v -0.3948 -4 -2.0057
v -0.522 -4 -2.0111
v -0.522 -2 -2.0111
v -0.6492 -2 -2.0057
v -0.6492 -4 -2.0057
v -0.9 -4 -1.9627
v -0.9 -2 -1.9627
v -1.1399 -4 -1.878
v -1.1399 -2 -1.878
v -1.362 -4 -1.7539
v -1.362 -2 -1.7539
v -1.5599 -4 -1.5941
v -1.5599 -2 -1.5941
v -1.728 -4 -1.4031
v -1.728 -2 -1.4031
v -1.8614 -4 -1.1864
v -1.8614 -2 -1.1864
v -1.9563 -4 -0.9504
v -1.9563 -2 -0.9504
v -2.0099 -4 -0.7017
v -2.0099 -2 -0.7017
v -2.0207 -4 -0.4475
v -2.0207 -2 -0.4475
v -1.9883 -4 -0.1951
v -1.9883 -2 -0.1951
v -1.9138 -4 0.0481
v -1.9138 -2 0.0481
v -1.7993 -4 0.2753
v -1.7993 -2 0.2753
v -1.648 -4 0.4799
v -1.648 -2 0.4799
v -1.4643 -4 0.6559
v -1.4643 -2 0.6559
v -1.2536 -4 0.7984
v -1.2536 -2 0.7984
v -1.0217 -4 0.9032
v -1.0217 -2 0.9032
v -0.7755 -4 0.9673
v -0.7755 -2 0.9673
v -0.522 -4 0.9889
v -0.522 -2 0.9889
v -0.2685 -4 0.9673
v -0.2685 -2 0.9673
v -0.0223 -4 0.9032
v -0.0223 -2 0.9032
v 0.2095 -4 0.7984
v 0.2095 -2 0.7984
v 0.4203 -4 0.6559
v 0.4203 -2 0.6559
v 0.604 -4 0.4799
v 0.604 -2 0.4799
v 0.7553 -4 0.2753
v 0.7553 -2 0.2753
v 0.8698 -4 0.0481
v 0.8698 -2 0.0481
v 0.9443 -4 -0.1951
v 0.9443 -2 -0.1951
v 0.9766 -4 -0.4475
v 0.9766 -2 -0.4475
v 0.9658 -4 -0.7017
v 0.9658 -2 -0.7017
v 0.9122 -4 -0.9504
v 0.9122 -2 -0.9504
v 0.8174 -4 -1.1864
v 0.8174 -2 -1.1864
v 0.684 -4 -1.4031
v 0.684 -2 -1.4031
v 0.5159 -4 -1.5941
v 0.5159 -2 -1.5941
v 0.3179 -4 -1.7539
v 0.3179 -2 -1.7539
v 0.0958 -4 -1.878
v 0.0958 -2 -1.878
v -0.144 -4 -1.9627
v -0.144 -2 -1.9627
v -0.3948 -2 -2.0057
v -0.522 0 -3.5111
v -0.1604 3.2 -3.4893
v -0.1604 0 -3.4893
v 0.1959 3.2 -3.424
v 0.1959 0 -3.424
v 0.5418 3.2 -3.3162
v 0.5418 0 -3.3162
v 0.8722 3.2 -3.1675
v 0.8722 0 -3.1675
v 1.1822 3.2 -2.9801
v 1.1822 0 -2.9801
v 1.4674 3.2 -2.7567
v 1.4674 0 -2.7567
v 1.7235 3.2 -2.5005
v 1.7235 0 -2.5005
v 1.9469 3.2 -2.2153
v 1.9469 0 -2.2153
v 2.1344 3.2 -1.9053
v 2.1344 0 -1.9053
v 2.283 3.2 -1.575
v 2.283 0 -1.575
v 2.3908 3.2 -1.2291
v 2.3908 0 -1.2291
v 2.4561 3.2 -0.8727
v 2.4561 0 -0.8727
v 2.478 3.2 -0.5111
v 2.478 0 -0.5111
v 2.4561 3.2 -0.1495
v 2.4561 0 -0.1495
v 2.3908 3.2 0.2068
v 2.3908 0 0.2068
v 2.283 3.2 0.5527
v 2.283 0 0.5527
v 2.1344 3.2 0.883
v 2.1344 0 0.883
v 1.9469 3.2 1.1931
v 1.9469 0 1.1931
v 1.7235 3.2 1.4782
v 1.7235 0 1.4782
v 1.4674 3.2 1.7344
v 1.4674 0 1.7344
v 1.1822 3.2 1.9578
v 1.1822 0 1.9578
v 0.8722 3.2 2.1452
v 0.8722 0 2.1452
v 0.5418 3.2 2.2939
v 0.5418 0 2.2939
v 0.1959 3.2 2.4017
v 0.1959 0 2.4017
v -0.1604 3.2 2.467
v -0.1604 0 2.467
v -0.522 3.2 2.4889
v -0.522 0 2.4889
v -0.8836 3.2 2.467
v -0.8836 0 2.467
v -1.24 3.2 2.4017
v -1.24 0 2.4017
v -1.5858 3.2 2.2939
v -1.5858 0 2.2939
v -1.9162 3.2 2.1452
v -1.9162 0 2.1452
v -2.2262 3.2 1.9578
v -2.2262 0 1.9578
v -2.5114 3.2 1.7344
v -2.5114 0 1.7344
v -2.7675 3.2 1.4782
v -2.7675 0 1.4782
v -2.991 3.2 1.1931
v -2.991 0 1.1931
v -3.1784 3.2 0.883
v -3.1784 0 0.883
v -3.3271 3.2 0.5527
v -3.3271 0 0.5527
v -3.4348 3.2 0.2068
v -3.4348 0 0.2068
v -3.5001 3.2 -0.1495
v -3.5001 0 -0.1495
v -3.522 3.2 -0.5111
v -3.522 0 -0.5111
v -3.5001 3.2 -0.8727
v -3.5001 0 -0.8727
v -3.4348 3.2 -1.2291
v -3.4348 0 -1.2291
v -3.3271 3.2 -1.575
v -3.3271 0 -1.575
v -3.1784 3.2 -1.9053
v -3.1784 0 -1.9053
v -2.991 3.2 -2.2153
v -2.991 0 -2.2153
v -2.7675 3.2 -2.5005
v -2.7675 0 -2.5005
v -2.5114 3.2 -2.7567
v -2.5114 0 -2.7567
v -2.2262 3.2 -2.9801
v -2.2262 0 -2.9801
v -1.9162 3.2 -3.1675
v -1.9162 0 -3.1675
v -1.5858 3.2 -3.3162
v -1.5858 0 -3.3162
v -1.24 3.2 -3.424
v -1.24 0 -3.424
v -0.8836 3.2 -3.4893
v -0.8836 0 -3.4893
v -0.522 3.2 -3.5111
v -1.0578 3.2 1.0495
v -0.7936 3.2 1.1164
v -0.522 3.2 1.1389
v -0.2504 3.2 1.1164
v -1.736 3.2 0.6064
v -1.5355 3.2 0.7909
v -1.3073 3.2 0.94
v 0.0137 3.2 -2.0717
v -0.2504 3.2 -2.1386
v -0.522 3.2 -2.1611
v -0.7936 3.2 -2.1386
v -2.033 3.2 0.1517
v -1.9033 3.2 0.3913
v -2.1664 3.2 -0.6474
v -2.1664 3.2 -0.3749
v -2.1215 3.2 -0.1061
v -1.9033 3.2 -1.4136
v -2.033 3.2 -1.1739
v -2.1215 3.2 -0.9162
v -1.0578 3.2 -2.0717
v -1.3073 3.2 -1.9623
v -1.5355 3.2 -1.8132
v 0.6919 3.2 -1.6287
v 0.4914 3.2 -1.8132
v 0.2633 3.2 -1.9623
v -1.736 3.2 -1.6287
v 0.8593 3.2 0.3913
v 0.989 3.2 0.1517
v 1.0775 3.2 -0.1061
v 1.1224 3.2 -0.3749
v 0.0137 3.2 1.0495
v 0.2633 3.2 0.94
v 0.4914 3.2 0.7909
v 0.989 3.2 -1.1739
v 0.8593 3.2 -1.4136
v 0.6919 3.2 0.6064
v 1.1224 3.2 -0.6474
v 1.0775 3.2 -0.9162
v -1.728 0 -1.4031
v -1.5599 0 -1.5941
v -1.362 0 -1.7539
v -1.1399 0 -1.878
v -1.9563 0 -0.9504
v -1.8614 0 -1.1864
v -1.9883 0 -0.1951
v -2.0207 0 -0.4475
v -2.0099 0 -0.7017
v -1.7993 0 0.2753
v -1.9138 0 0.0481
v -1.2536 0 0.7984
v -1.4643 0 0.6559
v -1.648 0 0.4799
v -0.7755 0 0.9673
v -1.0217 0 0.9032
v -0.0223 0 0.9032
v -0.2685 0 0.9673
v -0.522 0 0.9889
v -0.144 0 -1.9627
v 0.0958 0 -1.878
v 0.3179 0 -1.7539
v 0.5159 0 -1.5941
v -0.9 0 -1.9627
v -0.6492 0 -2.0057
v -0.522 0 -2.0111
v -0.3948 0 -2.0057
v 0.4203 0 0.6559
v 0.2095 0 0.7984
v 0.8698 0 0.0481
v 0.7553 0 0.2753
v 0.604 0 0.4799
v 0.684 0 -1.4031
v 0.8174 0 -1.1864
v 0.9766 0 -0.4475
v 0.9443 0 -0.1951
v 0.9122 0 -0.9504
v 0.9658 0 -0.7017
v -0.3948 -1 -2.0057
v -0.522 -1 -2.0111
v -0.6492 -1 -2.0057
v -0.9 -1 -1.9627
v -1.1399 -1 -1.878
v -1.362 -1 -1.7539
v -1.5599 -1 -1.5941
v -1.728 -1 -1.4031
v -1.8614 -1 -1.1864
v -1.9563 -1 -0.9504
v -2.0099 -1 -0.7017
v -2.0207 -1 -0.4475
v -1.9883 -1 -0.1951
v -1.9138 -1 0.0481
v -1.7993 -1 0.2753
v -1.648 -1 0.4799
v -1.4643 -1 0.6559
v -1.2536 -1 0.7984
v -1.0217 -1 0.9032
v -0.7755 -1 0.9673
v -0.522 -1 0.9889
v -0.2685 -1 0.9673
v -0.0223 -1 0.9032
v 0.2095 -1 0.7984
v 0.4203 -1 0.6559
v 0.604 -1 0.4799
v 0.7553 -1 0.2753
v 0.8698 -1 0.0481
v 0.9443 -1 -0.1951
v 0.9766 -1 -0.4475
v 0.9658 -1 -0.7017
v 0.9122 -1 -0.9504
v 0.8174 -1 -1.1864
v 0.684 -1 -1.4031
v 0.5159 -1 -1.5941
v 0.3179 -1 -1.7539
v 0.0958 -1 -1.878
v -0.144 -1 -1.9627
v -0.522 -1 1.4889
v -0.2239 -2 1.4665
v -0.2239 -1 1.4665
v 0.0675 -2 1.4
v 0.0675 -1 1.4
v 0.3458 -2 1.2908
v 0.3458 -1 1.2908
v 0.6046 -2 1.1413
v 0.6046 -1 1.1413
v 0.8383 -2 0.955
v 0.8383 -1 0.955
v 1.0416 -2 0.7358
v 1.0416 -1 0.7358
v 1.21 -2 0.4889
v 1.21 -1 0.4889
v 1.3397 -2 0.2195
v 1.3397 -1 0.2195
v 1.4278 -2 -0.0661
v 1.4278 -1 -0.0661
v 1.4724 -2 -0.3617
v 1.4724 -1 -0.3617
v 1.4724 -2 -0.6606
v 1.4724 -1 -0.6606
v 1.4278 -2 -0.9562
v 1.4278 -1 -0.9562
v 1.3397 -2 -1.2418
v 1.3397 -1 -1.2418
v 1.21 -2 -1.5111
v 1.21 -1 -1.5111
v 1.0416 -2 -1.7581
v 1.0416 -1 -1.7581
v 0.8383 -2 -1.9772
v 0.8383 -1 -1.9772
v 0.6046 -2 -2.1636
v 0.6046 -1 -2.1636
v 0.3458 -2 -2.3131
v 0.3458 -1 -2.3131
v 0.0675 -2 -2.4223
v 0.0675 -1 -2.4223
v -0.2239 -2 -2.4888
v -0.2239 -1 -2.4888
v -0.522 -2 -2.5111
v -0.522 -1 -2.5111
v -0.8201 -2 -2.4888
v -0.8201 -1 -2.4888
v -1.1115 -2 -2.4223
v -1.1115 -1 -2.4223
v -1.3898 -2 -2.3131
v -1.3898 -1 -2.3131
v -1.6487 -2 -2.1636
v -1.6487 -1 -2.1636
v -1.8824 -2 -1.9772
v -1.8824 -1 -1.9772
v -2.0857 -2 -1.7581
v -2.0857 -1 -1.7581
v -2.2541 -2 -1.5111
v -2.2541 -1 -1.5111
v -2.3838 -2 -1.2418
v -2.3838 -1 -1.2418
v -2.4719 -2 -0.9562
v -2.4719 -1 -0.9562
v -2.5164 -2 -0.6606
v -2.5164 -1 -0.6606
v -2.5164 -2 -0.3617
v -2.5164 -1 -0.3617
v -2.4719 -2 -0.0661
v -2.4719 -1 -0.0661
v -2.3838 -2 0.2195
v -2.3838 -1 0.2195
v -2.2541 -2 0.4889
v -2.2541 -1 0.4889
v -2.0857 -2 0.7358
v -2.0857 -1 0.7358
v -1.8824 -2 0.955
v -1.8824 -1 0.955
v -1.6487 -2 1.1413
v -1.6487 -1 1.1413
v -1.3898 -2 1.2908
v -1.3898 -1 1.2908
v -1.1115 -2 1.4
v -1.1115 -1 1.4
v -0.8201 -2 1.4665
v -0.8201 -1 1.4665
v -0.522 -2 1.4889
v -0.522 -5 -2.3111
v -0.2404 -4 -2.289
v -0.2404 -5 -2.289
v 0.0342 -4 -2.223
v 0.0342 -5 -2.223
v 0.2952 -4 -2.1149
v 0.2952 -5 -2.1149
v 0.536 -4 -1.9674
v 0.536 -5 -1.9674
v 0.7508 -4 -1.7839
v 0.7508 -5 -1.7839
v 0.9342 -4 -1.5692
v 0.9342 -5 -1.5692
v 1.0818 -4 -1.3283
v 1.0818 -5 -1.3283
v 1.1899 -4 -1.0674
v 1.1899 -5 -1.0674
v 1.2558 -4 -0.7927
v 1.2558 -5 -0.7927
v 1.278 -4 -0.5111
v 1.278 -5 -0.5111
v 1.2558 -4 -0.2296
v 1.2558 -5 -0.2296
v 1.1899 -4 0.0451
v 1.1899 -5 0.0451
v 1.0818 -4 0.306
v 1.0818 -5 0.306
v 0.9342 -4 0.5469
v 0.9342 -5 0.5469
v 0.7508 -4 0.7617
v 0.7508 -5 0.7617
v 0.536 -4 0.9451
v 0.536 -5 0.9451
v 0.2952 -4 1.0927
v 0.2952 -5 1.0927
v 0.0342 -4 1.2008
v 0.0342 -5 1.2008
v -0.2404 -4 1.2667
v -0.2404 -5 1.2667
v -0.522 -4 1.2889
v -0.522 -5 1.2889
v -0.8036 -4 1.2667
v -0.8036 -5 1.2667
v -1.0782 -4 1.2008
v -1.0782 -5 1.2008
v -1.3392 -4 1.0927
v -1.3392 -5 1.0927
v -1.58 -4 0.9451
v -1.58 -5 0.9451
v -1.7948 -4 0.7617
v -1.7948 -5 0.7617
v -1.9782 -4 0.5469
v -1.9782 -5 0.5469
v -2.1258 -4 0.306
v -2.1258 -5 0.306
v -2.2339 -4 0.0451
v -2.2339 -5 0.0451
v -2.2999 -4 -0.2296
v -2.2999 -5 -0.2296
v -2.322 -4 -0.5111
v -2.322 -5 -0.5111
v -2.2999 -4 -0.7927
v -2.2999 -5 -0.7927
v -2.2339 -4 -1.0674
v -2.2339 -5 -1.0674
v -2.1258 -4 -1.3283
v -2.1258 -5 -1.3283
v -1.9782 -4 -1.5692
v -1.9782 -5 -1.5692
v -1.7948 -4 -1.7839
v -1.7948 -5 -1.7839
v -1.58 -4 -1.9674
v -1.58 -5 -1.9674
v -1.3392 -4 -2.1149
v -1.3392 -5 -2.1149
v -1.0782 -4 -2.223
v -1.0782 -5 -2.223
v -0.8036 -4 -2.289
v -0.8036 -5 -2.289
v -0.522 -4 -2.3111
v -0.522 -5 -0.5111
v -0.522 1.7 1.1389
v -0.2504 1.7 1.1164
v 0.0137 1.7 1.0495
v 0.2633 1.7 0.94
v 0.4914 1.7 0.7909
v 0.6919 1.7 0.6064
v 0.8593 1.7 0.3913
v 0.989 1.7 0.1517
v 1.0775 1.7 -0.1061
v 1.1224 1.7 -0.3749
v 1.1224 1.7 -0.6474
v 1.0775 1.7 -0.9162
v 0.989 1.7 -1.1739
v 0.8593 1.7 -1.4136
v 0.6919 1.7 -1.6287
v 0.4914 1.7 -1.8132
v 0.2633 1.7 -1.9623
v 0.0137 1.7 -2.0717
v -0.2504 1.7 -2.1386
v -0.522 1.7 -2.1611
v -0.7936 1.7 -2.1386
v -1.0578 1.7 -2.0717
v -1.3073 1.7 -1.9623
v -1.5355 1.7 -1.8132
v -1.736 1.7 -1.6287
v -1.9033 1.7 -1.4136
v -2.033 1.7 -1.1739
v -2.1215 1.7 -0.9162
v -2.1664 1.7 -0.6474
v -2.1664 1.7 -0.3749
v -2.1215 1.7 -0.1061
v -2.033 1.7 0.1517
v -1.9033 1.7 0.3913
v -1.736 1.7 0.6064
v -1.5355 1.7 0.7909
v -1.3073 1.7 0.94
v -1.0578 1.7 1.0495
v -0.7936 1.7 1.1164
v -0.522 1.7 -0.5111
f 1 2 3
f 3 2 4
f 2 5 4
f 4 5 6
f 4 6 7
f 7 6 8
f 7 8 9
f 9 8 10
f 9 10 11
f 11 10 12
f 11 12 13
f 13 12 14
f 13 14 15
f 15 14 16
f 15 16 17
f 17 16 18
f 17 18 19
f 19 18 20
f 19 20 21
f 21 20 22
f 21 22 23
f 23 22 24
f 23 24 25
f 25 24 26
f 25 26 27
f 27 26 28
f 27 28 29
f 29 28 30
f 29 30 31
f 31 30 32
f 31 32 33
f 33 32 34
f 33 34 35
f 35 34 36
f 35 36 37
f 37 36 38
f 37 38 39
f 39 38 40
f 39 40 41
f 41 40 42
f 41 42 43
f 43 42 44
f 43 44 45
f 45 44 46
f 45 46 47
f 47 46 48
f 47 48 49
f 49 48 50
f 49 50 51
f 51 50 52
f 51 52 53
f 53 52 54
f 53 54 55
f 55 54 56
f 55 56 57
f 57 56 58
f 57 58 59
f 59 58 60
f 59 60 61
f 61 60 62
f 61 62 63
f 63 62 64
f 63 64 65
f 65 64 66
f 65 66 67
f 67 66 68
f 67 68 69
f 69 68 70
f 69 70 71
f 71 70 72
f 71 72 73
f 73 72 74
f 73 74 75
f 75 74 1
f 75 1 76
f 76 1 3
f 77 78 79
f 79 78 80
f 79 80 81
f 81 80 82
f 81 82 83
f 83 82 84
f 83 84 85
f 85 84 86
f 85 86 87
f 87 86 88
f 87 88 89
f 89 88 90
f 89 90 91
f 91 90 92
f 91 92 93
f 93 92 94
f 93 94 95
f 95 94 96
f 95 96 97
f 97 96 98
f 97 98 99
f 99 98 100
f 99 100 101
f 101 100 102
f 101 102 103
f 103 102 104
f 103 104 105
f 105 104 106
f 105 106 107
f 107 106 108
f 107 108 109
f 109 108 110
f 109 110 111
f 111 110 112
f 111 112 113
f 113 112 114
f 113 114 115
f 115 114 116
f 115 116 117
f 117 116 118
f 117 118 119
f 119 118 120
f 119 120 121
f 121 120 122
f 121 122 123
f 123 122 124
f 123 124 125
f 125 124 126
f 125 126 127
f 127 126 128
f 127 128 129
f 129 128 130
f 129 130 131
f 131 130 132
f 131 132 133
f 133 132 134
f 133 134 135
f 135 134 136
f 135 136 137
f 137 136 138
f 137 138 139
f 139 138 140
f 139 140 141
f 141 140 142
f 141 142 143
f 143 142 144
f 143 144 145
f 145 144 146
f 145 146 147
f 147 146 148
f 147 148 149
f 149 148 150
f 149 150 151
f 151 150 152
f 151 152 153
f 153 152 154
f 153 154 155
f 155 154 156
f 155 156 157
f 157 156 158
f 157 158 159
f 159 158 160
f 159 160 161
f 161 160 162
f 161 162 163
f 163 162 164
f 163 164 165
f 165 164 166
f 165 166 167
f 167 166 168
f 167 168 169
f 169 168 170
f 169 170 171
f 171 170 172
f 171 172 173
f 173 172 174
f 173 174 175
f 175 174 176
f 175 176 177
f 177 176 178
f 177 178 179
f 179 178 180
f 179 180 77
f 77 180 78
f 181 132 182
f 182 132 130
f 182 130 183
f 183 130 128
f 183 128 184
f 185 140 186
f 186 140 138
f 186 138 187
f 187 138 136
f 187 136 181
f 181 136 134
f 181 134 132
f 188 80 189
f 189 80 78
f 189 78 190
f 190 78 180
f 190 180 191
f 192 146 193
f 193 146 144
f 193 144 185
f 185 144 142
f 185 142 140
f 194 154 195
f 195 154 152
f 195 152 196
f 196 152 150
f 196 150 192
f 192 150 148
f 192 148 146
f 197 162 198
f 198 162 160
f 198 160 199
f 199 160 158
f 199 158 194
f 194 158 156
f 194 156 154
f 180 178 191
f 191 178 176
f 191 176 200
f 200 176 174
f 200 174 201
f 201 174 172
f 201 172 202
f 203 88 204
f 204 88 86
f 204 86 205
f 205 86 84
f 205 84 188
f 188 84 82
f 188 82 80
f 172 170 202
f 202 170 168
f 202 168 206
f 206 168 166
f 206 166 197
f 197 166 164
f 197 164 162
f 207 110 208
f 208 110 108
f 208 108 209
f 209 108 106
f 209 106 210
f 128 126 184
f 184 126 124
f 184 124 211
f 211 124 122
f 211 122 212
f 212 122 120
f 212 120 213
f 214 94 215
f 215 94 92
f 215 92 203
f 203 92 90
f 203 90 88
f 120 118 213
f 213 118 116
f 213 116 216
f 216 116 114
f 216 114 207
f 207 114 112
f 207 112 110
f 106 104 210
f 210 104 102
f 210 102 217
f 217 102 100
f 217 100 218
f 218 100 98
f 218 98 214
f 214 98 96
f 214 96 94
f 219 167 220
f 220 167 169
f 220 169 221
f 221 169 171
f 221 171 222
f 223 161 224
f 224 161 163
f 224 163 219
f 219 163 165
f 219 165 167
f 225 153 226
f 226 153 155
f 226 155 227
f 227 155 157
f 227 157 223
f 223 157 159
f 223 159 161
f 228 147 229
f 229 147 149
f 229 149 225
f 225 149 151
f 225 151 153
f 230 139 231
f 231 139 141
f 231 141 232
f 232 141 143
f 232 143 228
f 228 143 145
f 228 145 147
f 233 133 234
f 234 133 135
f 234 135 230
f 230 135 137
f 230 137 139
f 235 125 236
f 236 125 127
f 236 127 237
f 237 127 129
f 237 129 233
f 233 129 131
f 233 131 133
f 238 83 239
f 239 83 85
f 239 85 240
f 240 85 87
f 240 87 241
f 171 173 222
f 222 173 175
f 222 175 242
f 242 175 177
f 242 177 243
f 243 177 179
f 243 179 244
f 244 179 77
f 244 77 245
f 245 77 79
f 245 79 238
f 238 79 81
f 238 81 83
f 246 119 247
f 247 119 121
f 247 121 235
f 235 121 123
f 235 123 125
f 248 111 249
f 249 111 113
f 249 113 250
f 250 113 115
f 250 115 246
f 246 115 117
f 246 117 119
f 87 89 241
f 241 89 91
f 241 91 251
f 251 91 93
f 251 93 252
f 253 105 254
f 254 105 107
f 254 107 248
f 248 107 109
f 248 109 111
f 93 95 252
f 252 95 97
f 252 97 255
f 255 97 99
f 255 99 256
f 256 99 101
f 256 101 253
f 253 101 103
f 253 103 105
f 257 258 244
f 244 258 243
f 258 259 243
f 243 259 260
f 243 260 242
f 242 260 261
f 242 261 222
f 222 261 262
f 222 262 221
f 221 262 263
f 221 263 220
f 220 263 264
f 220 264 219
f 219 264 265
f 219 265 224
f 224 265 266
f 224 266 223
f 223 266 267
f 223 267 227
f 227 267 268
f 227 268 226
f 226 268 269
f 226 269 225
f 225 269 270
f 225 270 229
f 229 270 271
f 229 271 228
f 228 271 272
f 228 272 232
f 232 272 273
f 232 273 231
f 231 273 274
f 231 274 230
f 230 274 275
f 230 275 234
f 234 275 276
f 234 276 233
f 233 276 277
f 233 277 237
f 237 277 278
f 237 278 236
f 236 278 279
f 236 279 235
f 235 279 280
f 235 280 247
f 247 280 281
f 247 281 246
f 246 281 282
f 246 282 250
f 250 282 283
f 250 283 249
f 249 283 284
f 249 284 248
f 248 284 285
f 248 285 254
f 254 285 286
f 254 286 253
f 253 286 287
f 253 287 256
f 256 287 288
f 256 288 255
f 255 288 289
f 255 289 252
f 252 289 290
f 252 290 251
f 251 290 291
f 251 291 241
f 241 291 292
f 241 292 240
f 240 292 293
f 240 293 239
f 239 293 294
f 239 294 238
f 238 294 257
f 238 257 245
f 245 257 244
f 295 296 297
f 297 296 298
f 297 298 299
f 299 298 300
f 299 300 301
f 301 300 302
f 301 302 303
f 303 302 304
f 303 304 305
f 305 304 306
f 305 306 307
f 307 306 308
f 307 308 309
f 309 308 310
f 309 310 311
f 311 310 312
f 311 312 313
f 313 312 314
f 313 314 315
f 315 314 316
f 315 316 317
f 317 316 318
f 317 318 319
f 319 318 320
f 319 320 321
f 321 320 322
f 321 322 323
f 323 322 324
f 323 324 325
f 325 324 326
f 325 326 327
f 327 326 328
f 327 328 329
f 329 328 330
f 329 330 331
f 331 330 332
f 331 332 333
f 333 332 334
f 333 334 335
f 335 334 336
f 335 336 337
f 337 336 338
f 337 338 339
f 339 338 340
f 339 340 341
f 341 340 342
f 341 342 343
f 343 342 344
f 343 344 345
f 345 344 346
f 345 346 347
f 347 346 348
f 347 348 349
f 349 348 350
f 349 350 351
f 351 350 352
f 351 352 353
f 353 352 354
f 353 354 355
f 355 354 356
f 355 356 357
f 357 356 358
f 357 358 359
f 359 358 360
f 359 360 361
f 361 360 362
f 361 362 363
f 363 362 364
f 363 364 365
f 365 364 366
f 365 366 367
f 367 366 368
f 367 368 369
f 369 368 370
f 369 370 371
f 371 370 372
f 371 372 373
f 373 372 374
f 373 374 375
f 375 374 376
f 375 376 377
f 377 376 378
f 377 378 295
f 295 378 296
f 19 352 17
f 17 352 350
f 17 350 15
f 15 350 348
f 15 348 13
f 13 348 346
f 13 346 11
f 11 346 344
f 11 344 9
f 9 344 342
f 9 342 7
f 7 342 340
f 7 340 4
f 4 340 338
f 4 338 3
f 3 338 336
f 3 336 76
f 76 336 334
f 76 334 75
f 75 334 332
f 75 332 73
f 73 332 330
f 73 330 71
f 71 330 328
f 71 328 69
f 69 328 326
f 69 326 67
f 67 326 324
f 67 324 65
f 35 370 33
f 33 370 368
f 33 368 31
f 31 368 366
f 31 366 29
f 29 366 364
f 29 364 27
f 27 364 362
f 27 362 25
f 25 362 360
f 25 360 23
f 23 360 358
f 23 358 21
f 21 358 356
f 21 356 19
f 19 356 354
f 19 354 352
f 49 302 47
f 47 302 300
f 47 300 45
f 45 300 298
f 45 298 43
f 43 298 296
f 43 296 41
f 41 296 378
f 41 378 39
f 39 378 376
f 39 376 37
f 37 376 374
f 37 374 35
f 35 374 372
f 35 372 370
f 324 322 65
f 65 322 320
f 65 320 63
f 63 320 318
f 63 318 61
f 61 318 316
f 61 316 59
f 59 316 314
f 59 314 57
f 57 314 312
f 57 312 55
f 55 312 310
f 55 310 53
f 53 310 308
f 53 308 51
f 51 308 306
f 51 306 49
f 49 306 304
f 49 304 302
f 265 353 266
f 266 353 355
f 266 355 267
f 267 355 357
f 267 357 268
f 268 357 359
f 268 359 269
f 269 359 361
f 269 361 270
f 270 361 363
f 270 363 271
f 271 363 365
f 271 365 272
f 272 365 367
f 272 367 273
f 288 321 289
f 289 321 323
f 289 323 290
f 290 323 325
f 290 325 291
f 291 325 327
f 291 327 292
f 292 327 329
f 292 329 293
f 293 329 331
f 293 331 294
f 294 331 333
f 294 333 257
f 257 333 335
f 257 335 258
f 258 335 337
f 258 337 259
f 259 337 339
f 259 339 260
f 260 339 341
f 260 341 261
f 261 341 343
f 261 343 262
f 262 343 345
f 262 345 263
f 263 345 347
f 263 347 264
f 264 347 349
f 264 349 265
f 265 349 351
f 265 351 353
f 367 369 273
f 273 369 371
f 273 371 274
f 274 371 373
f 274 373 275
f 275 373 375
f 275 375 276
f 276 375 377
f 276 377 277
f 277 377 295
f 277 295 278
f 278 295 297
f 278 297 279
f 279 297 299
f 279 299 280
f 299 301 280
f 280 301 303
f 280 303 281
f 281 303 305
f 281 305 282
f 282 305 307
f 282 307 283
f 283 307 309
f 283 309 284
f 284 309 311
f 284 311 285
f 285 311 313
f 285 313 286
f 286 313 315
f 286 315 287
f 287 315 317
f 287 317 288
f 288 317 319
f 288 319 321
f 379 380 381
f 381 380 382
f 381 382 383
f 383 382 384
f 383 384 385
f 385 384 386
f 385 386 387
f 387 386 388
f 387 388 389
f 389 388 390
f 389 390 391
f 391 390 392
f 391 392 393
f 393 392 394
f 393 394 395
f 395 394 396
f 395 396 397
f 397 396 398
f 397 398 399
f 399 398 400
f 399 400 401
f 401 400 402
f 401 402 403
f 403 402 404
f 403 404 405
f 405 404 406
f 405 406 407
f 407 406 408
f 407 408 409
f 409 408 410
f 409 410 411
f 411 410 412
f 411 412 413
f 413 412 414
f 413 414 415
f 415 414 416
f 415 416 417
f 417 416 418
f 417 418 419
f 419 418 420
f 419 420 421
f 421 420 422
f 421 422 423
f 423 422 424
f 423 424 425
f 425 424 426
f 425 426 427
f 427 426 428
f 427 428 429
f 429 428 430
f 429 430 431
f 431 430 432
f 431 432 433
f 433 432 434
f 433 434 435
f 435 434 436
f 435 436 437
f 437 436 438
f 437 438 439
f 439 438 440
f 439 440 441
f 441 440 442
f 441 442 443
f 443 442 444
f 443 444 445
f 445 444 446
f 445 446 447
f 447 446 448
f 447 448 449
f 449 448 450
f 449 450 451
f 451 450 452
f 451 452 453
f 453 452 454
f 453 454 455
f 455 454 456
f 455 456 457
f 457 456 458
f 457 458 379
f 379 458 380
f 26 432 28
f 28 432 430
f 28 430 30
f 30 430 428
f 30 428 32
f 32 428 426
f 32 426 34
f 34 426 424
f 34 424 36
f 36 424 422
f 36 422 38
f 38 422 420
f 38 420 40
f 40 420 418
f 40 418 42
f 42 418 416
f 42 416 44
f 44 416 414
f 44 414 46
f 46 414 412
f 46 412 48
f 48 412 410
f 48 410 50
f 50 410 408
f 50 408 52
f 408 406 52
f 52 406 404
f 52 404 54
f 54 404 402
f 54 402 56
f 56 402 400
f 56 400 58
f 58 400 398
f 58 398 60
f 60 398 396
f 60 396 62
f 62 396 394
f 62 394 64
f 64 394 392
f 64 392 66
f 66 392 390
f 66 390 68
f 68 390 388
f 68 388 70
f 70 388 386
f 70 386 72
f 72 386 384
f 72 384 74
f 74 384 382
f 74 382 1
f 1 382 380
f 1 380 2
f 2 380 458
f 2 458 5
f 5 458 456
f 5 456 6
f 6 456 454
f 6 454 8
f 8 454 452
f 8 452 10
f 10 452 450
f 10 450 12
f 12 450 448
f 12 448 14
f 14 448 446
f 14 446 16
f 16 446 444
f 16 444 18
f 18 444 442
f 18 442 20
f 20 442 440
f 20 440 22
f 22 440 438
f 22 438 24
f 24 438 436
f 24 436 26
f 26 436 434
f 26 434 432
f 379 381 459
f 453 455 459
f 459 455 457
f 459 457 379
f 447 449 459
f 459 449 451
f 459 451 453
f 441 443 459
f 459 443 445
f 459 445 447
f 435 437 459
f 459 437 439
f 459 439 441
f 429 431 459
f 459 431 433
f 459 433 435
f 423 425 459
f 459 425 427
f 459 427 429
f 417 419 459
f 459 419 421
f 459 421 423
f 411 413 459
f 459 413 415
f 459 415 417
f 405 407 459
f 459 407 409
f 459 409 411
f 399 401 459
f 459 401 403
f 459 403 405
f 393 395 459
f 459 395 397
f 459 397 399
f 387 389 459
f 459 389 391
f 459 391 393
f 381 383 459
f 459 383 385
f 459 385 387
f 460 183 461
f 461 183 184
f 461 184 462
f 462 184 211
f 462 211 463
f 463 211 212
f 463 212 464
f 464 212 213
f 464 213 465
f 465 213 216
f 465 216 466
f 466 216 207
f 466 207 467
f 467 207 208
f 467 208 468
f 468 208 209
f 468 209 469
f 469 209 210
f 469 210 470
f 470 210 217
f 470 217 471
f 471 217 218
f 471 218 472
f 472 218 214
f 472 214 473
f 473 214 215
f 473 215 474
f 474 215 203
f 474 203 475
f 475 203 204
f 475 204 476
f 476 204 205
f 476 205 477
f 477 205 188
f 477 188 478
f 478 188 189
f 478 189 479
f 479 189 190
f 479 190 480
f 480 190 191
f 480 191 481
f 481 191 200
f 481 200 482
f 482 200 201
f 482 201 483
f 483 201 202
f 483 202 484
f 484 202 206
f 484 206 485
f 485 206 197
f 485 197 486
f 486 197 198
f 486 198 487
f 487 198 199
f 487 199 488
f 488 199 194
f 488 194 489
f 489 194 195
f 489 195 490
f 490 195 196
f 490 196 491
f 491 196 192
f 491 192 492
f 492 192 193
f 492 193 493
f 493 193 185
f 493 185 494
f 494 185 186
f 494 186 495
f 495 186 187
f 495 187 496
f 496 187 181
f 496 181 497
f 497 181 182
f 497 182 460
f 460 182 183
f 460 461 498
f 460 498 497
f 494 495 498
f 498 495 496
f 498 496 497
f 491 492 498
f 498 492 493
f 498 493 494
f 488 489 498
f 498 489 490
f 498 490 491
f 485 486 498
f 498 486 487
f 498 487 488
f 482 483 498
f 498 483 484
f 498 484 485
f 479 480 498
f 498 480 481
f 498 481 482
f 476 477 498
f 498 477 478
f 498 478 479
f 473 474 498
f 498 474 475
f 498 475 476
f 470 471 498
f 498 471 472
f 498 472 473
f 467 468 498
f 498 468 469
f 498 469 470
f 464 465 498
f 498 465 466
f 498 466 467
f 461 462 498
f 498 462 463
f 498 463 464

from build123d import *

# Parameters (mm, degrees)
SKETCH1_R           = 3
BOSS_EXTRUDE1_DEPTH = 3.2
SKETCH1_3_R         = 1.6
BOSS_EXTRUDE2_DEPTH = 1
SKETCH5_R           = 1.5
BOSS_EXTRUDE3_DEPTH = 1
SKETCH6_R           = 2
BOSS_EXTRUDE4_DEPTH = 1
SKETCH8_R           = 1.5
BOSS_EXTRUDE5_DEPTH = 3
SKETCH10_R          = 1.8
BOSS_EXTRUDE6_DEPTH = 1
SKETCH12_R          = 1.65
CUT_EXTRUDE1_DEPTH  = 1.5


with BuildPart() as part:
    # Sketch1 → Boss-Extrude1 (new body)
    with BuildSketch(Plane(origin=(0, 0, 0), x_dir=(1, 0, 0), z_dir=(0, 1, 0))):
        with Locations((-0.522013312, 0.511138034)):
            Circle(SKETCH1_R)
    extrude(amount=BOSS_EXTRUDE1_DEPTH)

    # Sketch1<3> → Boss-Extrude2 (add)
    with BuildSketch(Plane(origin=(0, 0, 0), x_dir=(1, 0, 0), z_dir=(0, 1, 0))):
        with Locations((-0.522013312, 0.511138034)):
            Circle(SKETCH1_3_R)
    extrude(amount=BOSS_EXTRUDE2_DEPTH)

    # Sketch5 → Boss-Extrude3 (add)
    with BuildSketch(Plane.XZ):
        with Locations((-0.522013312, -0.511138034)):
            Circle(SKETCH5_R)
    extrude(amount=BOSS_EXTRUDE3_DEPTH)

    # Sketch6 → Boss-Extrude4 (add)
    with BuildSketch(Plane.XZ.offset(1)):
        with Locations((-0.522013312, -0.511138034)):
            Circle(SKETCH6_R)
    extrude(amount=BOSS_EXTRUDE4_DEPTH)

    # Sketch8 → Boss-Extrude5 (add)
    with BuildSketch(Plane(origin=(0, -2, 0), x_dir=(-1, 0, 0), z_dir=(0, -1, 0))):
        with Locations((0.522013312, 0.511138034)):
            Circle(SKETCH8_R)
    extrude(amount=BOSS_EXTRUDE5_DEPTH)

    # Sketch10 → Boss-Extrude6 (add)
    with BuildSketch(Plane.XZ.offset(5)):
        with Locations((-0.522013312, -0.511138034)):
            Circle(SKETCH10_R)
    extrude(amount=-BOSS_EXTRUDE6_DEPTH)

    # Sketch12 → Cut-Extrude1 (cut)
    with BuildSketch(Plane(origin=(0, 3.2, 0), x_dir=(1, 0, 0), z_dir=(0, 1, 0))):
        with Locations((-0.522013312, 0.511138034)):
            Circle(SKETCH12_R)
    extrude(amount=-CUT_EXTRUDE1_DEPTH, mode=Mode.SUBTRACT)


solid = part.part
